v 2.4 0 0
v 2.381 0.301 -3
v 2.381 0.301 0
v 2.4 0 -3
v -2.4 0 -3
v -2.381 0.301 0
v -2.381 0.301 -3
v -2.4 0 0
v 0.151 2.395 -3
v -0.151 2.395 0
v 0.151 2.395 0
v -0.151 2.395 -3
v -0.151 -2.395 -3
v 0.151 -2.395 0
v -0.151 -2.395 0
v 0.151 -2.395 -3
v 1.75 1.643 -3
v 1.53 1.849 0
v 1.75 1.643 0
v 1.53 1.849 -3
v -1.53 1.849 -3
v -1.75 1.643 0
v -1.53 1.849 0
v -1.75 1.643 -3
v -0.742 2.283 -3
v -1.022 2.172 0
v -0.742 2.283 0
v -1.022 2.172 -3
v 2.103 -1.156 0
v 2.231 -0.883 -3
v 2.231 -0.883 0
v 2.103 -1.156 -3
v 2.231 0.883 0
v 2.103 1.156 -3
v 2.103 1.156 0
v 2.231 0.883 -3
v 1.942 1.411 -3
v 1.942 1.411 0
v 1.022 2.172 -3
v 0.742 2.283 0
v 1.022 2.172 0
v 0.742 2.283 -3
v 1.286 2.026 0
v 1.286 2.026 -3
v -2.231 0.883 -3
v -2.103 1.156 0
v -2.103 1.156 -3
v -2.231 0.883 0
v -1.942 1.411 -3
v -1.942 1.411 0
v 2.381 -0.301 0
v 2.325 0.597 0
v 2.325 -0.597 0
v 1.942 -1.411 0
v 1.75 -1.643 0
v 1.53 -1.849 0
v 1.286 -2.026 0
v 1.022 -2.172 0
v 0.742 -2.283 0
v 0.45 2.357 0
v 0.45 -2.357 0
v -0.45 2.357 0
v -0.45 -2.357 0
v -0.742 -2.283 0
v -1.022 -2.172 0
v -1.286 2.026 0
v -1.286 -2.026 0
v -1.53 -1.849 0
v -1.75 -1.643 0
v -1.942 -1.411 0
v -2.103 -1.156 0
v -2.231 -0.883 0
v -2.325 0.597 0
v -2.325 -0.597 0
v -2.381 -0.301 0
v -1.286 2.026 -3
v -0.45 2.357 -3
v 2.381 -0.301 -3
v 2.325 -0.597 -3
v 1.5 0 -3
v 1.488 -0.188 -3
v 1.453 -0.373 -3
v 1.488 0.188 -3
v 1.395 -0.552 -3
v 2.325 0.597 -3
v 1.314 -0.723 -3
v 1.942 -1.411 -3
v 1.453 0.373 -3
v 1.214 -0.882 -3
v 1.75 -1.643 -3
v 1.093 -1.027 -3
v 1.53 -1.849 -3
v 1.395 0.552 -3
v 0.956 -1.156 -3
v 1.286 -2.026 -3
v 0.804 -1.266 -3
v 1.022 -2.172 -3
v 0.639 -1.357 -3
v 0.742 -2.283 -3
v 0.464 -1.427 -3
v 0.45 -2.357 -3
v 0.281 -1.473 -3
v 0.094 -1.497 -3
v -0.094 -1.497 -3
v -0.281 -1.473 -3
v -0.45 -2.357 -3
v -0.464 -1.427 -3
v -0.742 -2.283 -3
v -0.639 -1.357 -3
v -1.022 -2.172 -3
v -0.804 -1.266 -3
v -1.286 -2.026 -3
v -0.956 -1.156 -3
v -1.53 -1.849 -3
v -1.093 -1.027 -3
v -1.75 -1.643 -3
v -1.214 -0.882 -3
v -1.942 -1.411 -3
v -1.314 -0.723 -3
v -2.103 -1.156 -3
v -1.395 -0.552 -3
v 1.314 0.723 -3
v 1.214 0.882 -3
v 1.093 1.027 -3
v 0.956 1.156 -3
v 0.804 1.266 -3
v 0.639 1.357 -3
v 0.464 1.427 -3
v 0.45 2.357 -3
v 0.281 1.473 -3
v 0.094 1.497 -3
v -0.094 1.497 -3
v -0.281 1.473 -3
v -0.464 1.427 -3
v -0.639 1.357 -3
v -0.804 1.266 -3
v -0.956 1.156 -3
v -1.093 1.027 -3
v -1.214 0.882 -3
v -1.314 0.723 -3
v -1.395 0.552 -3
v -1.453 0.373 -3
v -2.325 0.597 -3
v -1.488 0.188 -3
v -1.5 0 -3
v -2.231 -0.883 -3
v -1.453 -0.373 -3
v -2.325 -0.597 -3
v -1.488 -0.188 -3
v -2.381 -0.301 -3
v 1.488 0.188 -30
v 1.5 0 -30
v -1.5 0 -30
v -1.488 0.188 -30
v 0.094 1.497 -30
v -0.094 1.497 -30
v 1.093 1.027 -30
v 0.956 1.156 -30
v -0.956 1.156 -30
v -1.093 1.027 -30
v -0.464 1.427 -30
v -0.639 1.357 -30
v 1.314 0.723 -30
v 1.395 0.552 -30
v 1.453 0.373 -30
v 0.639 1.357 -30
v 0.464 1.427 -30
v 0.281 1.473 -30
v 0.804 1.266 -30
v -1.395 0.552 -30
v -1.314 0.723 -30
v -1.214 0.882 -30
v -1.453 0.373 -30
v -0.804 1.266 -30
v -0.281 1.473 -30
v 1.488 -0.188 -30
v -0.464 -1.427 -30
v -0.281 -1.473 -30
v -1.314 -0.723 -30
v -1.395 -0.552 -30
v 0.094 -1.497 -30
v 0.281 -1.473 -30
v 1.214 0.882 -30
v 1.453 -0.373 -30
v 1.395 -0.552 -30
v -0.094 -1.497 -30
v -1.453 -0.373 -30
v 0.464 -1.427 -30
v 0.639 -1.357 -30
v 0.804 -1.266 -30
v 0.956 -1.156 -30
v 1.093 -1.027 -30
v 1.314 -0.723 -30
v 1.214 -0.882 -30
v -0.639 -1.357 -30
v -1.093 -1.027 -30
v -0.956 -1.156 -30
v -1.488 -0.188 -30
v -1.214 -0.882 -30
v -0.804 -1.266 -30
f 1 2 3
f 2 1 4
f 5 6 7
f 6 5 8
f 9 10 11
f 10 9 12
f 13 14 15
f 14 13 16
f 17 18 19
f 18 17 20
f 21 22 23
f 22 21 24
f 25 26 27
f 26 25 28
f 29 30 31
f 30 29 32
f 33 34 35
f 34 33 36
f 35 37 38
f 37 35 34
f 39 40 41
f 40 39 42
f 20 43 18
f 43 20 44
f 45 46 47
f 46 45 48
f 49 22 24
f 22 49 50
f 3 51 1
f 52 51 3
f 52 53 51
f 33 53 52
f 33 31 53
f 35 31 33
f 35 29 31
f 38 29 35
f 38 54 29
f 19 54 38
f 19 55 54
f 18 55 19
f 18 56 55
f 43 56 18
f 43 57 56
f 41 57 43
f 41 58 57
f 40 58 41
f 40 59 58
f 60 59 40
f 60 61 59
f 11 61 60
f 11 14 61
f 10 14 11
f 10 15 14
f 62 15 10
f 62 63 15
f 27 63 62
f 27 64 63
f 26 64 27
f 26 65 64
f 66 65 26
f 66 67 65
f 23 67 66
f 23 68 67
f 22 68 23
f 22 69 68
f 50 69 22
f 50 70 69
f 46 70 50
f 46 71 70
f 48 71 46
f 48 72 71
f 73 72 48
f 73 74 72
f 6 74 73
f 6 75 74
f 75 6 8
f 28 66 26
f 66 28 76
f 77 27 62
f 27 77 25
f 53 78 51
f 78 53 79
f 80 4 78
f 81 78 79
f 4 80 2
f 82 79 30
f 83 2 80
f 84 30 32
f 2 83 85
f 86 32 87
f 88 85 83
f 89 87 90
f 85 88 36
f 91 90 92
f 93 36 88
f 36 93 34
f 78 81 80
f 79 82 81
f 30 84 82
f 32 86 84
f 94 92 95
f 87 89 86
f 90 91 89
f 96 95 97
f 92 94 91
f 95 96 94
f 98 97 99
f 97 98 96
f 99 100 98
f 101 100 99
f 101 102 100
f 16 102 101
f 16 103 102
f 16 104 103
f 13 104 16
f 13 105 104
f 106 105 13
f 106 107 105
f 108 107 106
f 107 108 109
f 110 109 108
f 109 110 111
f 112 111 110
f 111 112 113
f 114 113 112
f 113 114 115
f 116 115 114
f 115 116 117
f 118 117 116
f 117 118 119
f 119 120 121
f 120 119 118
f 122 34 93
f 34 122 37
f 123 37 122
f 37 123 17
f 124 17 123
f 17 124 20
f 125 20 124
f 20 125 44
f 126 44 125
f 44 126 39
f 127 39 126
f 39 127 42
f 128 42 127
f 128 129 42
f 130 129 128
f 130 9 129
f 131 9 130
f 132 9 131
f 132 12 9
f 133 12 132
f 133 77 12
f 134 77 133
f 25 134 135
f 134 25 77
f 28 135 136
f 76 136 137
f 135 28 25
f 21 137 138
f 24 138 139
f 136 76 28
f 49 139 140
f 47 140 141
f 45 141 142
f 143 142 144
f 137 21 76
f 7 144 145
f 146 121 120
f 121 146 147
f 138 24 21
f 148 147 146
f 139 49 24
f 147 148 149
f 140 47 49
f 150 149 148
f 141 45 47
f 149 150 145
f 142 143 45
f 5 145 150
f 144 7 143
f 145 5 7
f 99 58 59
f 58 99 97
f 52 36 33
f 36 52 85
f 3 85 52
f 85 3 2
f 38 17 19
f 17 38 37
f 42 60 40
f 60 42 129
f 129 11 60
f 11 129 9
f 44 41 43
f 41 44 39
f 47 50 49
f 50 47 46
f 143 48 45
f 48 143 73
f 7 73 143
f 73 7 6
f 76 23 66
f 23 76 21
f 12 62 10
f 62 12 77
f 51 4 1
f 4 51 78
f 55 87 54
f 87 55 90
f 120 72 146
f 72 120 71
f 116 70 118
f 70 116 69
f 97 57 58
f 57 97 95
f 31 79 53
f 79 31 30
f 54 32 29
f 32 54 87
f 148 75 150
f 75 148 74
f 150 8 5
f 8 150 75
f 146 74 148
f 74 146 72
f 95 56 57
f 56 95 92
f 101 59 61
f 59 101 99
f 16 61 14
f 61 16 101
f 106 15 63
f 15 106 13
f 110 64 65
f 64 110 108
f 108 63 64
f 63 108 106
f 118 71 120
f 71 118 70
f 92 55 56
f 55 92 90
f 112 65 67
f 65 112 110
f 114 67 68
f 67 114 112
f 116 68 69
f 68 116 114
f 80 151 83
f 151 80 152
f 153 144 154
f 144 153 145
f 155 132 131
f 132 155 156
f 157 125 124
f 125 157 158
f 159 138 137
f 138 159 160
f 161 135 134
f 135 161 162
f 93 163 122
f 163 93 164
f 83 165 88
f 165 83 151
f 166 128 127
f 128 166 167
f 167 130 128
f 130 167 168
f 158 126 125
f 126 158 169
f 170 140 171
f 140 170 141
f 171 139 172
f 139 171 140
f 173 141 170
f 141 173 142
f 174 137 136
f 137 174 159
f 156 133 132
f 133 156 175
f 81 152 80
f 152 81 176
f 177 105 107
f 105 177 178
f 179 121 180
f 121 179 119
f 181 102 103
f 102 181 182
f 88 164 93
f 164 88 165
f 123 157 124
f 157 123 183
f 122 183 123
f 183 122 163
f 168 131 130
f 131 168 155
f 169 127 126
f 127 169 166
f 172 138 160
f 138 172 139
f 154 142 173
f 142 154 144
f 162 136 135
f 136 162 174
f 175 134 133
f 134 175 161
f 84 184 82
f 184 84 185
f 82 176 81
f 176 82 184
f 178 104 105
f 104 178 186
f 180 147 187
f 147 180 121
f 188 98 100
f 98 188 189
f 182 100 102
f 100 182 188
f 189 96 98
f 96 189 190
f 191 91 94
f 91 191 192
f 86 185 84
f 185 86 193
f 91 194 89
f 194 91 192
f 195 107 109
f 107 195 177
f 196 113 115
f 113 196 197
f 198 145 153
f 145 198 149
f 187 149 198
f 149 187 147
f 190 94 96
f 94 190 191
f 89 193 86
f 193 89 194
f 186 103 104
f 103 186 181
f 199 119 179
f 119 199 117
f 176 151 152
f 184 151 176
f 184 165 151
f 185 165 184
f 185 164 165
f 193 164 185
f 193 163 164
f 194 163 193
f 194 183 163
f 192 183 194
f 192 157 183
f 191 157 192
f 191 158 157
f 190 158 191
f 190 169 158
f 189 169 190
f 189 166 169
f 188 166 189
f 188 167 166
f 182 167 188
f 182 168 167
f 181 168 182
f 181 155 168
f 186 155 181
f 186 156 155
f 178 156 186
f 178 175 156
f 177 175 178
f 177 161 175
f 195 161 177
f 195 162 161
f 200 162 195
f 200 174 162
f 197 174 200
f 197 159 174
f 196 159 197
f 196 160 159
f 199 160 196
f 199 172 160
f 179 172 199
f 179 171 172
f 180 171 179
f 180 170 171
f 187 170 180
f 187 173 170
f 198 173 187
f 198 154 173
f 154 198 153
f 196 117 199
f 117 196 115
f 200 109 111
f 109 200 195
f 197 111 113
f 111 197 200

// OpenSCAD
$fn = 50;


difference() {
	union() {
		translate(v = [0, 0, -3]) {
			rotate(a = [0, 0, 0]) {
				cylinder(h = 3, r1 = 2.4000000000, r2 = 2.4000000000);
			}
		}
		translate(v = [0, 0, -30]) {
			rotate(a = [0, 0, 0]) {
				cylinder(h = 30, r = 1.5000000000);
			}
		}
	}
	union();
}
